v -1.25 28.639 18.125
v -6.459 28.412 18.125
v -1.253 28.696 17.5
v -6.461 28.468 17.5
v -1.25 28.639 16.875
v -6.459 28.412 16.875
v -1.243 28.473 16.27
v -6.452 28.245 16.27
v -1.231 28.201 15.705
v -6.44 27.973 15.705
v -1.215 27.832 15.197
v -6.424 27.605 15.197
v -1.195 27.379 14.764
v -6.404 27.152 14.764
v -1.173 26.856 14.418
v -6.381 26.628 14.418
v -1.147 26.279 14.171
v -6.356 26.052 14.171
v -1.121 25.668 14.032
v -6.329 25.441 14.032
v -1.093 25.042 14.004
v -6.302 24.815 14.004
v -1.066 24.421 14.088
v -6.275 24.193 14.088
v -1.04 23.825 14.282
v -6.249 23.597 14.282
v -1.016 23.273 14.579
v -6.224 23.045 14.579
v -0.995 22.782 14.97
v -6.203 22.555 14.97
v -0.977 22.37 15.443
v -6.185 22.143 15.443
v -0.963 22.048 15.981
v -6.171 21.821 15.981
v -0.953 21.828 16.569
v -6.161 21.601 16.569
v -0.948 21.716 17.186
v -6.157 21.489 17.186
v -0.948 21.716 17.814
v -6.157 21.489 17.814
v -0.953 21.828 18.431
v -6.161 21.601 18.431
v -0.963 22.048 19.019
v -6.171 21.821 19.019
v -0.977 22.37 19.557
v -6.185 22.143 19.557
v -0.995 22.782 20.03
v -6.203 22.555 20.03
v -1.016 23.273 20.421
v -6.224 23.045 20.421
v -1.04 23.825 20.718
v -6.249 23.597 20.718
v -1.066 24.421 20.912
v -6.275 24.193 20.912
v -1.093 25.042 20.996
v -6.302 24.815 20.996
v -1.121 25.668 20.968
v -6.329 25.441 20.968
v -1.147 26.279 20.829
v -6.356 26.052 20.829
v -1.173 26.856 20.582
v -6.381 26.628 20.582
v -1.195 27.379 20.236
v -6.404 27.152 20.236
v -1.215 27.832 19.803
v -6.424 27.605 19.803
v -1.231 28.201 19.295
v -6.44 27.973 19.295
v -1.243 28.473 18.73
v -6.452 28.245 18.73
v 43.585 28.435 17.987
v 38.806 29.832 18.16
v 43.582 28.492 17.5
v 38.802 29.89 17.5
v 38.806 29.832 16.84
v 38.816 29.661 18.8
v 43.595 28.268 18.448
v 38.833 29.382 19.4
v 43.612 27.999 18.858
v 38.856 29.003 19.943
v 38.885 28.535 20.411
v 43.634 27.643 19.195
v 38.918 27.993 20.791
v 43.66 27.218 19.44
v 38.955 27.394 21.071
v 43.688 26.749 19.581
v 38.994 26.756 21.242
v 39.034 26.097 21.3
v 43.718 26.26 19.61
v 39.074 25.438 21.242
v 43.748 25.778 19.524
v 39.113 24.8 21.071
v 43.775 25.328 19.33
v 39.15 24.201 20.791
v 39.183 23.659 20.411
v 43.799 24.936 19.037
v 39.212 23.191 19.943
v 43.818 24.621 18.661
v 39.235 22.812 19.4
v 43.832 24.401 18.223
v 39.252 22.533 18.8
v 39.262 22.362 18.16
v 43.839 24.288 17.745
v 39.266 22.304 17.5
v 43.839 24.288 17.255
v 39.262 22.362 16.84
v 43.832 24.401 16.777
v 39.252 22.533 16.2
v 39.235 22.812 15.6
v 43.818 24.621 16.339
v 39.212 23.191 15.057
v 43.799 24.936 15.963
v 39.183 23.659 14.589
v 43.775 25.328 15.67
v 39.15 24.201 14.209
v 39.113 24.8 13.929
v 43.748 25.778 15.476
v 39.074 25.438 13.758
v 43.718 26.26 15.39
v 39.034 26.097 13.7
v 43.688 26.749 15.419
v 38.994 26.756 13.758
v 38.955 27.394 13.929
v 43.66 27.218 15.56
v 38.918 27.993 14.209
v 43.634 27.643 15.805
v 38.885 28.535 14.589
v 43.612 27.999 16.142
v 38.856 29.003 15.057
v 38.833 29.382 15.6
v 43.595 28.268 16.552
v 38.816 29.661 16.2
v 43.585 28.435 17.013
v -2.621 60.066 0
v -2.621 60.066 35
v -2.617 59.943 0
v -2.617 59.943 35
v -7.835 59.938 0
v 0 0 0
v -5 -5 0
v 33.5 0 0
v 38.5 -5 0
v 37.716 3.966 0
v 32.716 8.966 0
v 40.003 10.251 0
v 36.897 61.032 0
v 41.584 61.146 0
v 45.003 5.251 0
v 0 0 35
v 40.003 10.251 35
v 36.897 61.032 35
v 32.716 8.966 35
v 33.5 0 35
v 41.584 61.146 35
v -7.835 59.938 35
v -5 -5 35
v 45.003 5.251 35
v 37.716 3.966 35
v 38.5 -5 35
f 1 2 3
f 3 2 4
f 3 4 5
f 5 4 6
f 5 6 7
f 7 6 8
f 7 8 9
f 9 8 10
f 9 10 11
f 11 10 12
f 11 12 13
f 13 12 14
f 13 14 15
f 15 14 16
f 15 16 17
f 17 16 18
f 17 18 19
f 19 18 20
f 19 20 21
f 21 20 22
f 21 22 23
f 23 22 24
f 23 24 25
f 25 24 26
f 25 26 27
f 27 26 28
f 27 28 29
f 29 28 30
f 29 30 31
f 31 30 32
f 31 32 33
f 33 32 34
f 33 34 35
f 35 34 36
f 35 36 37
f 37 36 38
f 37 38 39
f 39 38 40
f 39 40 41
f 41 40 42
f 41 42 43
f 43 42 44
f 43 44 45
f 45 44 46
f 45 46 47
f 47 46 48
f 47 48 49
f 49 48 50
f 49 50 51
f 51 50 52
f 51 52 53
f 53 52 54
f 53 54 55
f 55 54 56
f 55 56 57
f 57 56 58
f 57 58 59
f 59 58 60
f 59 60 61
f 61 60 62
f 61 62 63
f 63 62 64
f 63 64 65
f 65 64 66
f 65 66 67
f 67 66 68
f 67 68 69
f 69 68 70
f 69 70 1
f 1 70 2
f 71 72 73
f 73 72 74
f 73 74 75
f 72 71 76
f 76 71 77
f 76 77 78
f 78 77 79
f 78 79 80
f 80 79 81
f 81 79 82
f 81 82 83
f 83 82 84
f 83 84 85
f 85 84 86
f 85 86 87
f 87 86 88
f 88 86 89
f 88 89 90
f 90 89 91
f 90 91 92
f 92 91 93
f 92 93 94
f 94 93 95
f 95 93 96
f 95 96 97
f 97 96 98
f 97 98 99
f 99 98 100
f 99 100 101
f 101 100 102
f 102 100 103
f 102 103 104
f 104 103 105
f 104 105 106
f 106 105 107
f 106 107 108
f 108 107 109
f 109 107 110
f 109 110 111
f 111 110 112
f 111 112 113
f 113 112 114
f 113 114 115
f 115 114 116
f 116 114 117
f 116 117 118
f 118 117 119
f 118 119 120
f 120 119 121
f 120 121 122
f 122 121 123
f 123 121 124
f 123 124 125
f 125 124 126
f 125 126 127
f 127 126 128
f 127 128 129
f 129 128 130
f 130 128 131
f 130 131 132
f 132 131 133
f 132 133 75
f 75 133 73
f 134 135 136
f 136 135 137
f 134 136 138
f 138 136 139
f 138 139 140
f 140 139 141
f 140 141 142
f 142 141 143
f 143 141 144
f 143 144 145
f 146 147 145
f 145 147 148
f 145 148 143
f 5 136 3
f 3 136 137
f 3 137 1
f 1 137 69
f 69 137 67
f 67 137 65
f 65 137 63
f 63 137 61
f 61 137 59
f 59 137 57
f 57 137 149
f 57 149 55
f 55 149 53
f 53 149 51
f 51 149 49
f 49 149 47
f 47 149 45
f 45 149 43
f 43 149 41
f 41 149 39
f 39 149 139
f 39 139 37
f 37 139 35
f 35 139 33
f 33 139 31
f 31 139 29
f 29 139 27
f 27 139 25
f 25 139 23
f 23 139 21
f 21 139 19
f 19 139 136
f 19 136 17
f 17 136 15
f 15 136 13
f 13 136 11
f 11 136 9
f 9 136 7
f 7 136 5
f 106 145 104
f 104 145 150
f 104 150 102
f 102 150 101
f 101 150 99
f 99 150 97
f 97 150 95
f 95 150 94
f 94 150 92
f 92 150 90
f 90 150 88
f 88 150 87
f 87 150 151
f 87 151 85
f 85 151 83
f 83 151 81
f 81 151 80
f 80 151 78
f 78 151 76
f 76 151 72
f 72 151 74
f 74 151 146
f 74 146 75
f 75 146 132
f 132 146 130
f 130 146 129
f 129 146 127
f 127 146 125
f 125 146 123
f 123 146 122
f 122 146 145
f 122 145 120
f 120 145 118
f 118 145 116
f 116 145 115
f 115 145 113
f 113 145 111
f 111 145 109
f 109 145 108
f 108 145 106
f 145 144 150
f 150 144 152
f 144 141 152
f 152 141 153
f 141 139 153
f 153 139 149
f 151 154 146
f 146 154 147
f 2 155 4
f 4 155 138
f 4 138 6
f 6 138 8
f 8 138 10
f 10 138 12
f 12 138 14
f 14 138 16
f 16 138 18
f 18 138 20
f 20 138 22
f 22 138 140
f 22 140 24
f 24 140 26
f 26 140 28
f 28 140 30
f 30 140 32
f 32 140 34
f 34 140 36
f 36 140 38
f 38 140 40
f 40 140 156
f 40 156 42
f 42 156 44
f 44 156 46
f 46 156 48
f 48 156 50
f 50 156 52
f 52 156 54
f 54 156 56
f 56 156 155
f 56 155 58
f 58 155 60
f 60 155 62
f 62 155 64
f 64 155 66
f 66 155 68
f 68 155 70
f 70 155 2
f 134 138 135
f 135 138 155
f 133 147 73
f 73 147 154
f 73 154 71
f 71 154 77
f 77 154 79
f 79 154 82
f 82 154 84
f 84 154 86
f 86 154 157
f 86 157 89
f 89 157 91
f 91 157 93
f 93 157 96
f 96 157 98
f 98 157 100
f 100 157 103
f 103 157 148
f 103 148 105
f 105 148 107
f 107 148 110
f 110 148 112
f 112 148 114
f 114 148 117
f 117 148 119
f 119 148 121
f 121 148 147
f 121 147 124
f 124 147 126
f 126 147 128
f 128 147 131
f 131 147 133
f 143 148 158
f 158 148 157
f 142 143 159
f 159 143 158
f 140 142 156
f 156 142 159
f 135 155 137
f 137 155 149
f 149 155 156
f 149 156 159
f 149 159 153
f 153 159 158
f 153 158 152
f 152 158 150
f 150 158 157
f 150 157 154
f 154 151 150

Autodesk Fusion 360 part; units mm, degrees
sketch "Esquisse2" plane through (0, 0, 0) normal (0, 0, 1) x (1, 0, 0)
  line L0 (0, 0) -> (33.5, 0)
  line L1 (0, 0) -> (-2.6172, 59.9429)
  line L2 (0, 0) -> (60, 0) construction
  line L3 (33.5, 0) -> (32.7156, 8.9658)
  line L4 (33.5, 0) -> (42.4658, 0) construction
  line L5 (32.7156, 8.9658) -> (40.0032, 10.2507)
  line L6 (32.7156, 8.9658) -> (40.1156, 8.9658) construction
  line L7 (40.0032, 10.2507) -> (36.8897, 61.1556)
  line L8 (40.0032, 10.2507) -> (91.0032, 10.2507) construction
  line L9 (36.8897, 61.1556) -> (-2.6172, 59.9429)
  dimension "d13" = 33.5
  dimension "d14" = 92.5
  dimension "d15" = 60
  dimension "d16" = 95
  dimension "d17" = 9
  dimension "d18" = 10
  dimension "d19" = 7.4
  dimension "d20" = 93.5
  dimension "d21" = 51
sketch "Esquisse3" plane through (0, 0, 0) normal (0, 0, 1) x (1, 0, 0)
  line L0 (0, 0) -> (-5, 0) construction
  line L1 (-5, 0) -> (-5, -5) construction
  line L2 (-5, -5) -> (0, -5) construction
  line L3 (0, -5) -> (0, 0) construction
  line L4 (-5, -5) -> (38.5, -5)
  line L5 (-5, -5) -> (-7.8353, 59.9381)
  line L6 (-5, -5) -> (65, -5) construction
  line L7 (38.5, -5) -> (37.7156, 3.9658)
  line L8 (38.5, -5) -> (47.4658, -5) construction
  line L9 (37.7156, 3.9658) -> (45.0032, 5.2507)
  line L10 (37.7156, 3.9658) -> (45.1156, 3.9658) construction
  line L11 (45.0032, 5.2507) -> (41.5845, 61.1463)
  line L12 (45.0032, 5.2507) -> (106.0032, 5.2507) construction
  line L13 (-7.8353, 59.9381) -> (41.5845, 61.1463)
  dimension "d22" = 5
  dimension "d23" = 5
  dimension "d24" = 43.5
  dimension "d25" = 92.5
  dimension "d26" = 65
  dimension "d27" = 95
  dimension "d28" = 9
  dimension "d29" = 10
  dimension "d30" = 7.4
  dimension "d31" = 93.5
  dimension "d32" = 56
extrude "Extrusion1" add sketch "Esquisse3" along normal blind 35
extrude "Extrusion2" cut sketch "Esquisse2" along normal blind 35
extrude "Extrusion3" cut 1 faces at (10.4829, 60.345, 23.3333) along direction (-0.030682, 0.999529, 0) blind 10
ref_plane "Plan de construction1" through (36.8973, 61.0317, 35) normal (-0.9981, -0.061, 0) x (0.061, -0.9981, 0)
sketch "Esquisse4" plane through (36.8973, 61.0317, 35) normal (-0.9981, -0.061, 0) x (0.061, -0.9981, 0)
  line L0 (0, 0) -> (35, 0) construction
  line L1 (35, 0) -> (35, -17.5) construction
  line L2 (35, -17.5) -> (0, -17.5) construction
  line L3 (0, -17.5) -> (0, 0) construction
  circle A0 centre (35, -17.5) radius 3.8
  dimension "d41" = 35
  dimension "d42" = 17.5
  dimension "d43" = 7.6
ref_plane "Plan de construction2" through (44.0247, 26.4022, 17.5) normal (-0.9981, -0.061, 0) x (0.061, -0.9981, 0)
sketch "Esquisse5" plane through (44.0247, 26.4022, 17.5) normal (-0.9981, -0.061, 0) x (0.061, -0.9981, 0)
  circle A0 centre (0, 0) radius 2
  dimension "d45" = 4
loft "Lissage1" cut profiles "Esquisse5", "Esquisse4" section 1 section 2
ref_plane "Plan de construction3" through (-7.8353, 59.9381, 35) normal (-0.999, -0.0436, 0) x (0.0436, -0.999, 0)
sketch "Esquisse6" plane through (-7.8353, 59.9381, 35) normal (-0.999, -0.0436, 0) x (0.0436, -0.999, 0)
  line L0 (0, 0) -> (35, 0) construction
  line L1 (35, 0) -> (35, -17.5) construction
  line L2 (35, -17.5) -> (0, -17.5) construction
  line L3 (0, -17.5) -> (0, 0) construction
  circle A0 centre (35, -17.5) radius 3.5
  dimension "d46" = 35
  dimension "d47" = 17.5
  dimension "d48" = 7
extrude "Extrusion4" cut sketch "Esquisse6" against normal blind 10
equation "height = 60 mm"
equation "bottomWidth = 33.5 mm"
equation "edgeHeight = 9 mm"
equation "edgeWidth = 7.4 mm"
equation "thickness = 5 mm"
equation "screwHoleDiameter = 4 mm"
equation "screwHoleBevel = 7.6 mm"
equation "screwDriverHoleDiameter = 7 mm"
equation "angle1 = 92.5 deg"
equation "angle2 = 95 deg"
equation "angle3 = 10 deg"
equation "angle4 = 93.5 deg"
equation "d13 = bottomWidth"
equation "d14 = angle1"
equation "d15 = height"
equation "d16 = angle2"
equation "d18 = angle3"
equation "d19 = edgeWidth"
equation "d20 = angle4"
equation "d21 = height - edgeHeight"
equation "d22 = thickness"
equation "d23 = thickness"
equation "d24 = bottomWidth + ( 2 * thickness )"
equation "d25 = angle1"
equation "d26 = height + thickness"
equation "d27 = angle2"
equation "d28 = edgeHeight"
equation "d29 = angle3"
equation "d30 = edgeWidth"
equation "d31 = angle4"
equation "d32 = height - edgeHeight + thickness"
equation "d33 = width"
equation "width = 35 mm"
equation "d36 = width"
equation "screwHoleHeight = 30 mm"
equation "d41 = height + thickness - screwHoleHeight"
equation "d42 = width / 2"
equation "d43 = screwHoleBevel"
equation "d45 = screwHoleDiameter"
equation "d46 = height + thickness - screwHoleHeight"
equation "d47 = width / 2"
equation "d48 = screwDriverHoleDiameter"
equation "d49 = -thickness * 2"
